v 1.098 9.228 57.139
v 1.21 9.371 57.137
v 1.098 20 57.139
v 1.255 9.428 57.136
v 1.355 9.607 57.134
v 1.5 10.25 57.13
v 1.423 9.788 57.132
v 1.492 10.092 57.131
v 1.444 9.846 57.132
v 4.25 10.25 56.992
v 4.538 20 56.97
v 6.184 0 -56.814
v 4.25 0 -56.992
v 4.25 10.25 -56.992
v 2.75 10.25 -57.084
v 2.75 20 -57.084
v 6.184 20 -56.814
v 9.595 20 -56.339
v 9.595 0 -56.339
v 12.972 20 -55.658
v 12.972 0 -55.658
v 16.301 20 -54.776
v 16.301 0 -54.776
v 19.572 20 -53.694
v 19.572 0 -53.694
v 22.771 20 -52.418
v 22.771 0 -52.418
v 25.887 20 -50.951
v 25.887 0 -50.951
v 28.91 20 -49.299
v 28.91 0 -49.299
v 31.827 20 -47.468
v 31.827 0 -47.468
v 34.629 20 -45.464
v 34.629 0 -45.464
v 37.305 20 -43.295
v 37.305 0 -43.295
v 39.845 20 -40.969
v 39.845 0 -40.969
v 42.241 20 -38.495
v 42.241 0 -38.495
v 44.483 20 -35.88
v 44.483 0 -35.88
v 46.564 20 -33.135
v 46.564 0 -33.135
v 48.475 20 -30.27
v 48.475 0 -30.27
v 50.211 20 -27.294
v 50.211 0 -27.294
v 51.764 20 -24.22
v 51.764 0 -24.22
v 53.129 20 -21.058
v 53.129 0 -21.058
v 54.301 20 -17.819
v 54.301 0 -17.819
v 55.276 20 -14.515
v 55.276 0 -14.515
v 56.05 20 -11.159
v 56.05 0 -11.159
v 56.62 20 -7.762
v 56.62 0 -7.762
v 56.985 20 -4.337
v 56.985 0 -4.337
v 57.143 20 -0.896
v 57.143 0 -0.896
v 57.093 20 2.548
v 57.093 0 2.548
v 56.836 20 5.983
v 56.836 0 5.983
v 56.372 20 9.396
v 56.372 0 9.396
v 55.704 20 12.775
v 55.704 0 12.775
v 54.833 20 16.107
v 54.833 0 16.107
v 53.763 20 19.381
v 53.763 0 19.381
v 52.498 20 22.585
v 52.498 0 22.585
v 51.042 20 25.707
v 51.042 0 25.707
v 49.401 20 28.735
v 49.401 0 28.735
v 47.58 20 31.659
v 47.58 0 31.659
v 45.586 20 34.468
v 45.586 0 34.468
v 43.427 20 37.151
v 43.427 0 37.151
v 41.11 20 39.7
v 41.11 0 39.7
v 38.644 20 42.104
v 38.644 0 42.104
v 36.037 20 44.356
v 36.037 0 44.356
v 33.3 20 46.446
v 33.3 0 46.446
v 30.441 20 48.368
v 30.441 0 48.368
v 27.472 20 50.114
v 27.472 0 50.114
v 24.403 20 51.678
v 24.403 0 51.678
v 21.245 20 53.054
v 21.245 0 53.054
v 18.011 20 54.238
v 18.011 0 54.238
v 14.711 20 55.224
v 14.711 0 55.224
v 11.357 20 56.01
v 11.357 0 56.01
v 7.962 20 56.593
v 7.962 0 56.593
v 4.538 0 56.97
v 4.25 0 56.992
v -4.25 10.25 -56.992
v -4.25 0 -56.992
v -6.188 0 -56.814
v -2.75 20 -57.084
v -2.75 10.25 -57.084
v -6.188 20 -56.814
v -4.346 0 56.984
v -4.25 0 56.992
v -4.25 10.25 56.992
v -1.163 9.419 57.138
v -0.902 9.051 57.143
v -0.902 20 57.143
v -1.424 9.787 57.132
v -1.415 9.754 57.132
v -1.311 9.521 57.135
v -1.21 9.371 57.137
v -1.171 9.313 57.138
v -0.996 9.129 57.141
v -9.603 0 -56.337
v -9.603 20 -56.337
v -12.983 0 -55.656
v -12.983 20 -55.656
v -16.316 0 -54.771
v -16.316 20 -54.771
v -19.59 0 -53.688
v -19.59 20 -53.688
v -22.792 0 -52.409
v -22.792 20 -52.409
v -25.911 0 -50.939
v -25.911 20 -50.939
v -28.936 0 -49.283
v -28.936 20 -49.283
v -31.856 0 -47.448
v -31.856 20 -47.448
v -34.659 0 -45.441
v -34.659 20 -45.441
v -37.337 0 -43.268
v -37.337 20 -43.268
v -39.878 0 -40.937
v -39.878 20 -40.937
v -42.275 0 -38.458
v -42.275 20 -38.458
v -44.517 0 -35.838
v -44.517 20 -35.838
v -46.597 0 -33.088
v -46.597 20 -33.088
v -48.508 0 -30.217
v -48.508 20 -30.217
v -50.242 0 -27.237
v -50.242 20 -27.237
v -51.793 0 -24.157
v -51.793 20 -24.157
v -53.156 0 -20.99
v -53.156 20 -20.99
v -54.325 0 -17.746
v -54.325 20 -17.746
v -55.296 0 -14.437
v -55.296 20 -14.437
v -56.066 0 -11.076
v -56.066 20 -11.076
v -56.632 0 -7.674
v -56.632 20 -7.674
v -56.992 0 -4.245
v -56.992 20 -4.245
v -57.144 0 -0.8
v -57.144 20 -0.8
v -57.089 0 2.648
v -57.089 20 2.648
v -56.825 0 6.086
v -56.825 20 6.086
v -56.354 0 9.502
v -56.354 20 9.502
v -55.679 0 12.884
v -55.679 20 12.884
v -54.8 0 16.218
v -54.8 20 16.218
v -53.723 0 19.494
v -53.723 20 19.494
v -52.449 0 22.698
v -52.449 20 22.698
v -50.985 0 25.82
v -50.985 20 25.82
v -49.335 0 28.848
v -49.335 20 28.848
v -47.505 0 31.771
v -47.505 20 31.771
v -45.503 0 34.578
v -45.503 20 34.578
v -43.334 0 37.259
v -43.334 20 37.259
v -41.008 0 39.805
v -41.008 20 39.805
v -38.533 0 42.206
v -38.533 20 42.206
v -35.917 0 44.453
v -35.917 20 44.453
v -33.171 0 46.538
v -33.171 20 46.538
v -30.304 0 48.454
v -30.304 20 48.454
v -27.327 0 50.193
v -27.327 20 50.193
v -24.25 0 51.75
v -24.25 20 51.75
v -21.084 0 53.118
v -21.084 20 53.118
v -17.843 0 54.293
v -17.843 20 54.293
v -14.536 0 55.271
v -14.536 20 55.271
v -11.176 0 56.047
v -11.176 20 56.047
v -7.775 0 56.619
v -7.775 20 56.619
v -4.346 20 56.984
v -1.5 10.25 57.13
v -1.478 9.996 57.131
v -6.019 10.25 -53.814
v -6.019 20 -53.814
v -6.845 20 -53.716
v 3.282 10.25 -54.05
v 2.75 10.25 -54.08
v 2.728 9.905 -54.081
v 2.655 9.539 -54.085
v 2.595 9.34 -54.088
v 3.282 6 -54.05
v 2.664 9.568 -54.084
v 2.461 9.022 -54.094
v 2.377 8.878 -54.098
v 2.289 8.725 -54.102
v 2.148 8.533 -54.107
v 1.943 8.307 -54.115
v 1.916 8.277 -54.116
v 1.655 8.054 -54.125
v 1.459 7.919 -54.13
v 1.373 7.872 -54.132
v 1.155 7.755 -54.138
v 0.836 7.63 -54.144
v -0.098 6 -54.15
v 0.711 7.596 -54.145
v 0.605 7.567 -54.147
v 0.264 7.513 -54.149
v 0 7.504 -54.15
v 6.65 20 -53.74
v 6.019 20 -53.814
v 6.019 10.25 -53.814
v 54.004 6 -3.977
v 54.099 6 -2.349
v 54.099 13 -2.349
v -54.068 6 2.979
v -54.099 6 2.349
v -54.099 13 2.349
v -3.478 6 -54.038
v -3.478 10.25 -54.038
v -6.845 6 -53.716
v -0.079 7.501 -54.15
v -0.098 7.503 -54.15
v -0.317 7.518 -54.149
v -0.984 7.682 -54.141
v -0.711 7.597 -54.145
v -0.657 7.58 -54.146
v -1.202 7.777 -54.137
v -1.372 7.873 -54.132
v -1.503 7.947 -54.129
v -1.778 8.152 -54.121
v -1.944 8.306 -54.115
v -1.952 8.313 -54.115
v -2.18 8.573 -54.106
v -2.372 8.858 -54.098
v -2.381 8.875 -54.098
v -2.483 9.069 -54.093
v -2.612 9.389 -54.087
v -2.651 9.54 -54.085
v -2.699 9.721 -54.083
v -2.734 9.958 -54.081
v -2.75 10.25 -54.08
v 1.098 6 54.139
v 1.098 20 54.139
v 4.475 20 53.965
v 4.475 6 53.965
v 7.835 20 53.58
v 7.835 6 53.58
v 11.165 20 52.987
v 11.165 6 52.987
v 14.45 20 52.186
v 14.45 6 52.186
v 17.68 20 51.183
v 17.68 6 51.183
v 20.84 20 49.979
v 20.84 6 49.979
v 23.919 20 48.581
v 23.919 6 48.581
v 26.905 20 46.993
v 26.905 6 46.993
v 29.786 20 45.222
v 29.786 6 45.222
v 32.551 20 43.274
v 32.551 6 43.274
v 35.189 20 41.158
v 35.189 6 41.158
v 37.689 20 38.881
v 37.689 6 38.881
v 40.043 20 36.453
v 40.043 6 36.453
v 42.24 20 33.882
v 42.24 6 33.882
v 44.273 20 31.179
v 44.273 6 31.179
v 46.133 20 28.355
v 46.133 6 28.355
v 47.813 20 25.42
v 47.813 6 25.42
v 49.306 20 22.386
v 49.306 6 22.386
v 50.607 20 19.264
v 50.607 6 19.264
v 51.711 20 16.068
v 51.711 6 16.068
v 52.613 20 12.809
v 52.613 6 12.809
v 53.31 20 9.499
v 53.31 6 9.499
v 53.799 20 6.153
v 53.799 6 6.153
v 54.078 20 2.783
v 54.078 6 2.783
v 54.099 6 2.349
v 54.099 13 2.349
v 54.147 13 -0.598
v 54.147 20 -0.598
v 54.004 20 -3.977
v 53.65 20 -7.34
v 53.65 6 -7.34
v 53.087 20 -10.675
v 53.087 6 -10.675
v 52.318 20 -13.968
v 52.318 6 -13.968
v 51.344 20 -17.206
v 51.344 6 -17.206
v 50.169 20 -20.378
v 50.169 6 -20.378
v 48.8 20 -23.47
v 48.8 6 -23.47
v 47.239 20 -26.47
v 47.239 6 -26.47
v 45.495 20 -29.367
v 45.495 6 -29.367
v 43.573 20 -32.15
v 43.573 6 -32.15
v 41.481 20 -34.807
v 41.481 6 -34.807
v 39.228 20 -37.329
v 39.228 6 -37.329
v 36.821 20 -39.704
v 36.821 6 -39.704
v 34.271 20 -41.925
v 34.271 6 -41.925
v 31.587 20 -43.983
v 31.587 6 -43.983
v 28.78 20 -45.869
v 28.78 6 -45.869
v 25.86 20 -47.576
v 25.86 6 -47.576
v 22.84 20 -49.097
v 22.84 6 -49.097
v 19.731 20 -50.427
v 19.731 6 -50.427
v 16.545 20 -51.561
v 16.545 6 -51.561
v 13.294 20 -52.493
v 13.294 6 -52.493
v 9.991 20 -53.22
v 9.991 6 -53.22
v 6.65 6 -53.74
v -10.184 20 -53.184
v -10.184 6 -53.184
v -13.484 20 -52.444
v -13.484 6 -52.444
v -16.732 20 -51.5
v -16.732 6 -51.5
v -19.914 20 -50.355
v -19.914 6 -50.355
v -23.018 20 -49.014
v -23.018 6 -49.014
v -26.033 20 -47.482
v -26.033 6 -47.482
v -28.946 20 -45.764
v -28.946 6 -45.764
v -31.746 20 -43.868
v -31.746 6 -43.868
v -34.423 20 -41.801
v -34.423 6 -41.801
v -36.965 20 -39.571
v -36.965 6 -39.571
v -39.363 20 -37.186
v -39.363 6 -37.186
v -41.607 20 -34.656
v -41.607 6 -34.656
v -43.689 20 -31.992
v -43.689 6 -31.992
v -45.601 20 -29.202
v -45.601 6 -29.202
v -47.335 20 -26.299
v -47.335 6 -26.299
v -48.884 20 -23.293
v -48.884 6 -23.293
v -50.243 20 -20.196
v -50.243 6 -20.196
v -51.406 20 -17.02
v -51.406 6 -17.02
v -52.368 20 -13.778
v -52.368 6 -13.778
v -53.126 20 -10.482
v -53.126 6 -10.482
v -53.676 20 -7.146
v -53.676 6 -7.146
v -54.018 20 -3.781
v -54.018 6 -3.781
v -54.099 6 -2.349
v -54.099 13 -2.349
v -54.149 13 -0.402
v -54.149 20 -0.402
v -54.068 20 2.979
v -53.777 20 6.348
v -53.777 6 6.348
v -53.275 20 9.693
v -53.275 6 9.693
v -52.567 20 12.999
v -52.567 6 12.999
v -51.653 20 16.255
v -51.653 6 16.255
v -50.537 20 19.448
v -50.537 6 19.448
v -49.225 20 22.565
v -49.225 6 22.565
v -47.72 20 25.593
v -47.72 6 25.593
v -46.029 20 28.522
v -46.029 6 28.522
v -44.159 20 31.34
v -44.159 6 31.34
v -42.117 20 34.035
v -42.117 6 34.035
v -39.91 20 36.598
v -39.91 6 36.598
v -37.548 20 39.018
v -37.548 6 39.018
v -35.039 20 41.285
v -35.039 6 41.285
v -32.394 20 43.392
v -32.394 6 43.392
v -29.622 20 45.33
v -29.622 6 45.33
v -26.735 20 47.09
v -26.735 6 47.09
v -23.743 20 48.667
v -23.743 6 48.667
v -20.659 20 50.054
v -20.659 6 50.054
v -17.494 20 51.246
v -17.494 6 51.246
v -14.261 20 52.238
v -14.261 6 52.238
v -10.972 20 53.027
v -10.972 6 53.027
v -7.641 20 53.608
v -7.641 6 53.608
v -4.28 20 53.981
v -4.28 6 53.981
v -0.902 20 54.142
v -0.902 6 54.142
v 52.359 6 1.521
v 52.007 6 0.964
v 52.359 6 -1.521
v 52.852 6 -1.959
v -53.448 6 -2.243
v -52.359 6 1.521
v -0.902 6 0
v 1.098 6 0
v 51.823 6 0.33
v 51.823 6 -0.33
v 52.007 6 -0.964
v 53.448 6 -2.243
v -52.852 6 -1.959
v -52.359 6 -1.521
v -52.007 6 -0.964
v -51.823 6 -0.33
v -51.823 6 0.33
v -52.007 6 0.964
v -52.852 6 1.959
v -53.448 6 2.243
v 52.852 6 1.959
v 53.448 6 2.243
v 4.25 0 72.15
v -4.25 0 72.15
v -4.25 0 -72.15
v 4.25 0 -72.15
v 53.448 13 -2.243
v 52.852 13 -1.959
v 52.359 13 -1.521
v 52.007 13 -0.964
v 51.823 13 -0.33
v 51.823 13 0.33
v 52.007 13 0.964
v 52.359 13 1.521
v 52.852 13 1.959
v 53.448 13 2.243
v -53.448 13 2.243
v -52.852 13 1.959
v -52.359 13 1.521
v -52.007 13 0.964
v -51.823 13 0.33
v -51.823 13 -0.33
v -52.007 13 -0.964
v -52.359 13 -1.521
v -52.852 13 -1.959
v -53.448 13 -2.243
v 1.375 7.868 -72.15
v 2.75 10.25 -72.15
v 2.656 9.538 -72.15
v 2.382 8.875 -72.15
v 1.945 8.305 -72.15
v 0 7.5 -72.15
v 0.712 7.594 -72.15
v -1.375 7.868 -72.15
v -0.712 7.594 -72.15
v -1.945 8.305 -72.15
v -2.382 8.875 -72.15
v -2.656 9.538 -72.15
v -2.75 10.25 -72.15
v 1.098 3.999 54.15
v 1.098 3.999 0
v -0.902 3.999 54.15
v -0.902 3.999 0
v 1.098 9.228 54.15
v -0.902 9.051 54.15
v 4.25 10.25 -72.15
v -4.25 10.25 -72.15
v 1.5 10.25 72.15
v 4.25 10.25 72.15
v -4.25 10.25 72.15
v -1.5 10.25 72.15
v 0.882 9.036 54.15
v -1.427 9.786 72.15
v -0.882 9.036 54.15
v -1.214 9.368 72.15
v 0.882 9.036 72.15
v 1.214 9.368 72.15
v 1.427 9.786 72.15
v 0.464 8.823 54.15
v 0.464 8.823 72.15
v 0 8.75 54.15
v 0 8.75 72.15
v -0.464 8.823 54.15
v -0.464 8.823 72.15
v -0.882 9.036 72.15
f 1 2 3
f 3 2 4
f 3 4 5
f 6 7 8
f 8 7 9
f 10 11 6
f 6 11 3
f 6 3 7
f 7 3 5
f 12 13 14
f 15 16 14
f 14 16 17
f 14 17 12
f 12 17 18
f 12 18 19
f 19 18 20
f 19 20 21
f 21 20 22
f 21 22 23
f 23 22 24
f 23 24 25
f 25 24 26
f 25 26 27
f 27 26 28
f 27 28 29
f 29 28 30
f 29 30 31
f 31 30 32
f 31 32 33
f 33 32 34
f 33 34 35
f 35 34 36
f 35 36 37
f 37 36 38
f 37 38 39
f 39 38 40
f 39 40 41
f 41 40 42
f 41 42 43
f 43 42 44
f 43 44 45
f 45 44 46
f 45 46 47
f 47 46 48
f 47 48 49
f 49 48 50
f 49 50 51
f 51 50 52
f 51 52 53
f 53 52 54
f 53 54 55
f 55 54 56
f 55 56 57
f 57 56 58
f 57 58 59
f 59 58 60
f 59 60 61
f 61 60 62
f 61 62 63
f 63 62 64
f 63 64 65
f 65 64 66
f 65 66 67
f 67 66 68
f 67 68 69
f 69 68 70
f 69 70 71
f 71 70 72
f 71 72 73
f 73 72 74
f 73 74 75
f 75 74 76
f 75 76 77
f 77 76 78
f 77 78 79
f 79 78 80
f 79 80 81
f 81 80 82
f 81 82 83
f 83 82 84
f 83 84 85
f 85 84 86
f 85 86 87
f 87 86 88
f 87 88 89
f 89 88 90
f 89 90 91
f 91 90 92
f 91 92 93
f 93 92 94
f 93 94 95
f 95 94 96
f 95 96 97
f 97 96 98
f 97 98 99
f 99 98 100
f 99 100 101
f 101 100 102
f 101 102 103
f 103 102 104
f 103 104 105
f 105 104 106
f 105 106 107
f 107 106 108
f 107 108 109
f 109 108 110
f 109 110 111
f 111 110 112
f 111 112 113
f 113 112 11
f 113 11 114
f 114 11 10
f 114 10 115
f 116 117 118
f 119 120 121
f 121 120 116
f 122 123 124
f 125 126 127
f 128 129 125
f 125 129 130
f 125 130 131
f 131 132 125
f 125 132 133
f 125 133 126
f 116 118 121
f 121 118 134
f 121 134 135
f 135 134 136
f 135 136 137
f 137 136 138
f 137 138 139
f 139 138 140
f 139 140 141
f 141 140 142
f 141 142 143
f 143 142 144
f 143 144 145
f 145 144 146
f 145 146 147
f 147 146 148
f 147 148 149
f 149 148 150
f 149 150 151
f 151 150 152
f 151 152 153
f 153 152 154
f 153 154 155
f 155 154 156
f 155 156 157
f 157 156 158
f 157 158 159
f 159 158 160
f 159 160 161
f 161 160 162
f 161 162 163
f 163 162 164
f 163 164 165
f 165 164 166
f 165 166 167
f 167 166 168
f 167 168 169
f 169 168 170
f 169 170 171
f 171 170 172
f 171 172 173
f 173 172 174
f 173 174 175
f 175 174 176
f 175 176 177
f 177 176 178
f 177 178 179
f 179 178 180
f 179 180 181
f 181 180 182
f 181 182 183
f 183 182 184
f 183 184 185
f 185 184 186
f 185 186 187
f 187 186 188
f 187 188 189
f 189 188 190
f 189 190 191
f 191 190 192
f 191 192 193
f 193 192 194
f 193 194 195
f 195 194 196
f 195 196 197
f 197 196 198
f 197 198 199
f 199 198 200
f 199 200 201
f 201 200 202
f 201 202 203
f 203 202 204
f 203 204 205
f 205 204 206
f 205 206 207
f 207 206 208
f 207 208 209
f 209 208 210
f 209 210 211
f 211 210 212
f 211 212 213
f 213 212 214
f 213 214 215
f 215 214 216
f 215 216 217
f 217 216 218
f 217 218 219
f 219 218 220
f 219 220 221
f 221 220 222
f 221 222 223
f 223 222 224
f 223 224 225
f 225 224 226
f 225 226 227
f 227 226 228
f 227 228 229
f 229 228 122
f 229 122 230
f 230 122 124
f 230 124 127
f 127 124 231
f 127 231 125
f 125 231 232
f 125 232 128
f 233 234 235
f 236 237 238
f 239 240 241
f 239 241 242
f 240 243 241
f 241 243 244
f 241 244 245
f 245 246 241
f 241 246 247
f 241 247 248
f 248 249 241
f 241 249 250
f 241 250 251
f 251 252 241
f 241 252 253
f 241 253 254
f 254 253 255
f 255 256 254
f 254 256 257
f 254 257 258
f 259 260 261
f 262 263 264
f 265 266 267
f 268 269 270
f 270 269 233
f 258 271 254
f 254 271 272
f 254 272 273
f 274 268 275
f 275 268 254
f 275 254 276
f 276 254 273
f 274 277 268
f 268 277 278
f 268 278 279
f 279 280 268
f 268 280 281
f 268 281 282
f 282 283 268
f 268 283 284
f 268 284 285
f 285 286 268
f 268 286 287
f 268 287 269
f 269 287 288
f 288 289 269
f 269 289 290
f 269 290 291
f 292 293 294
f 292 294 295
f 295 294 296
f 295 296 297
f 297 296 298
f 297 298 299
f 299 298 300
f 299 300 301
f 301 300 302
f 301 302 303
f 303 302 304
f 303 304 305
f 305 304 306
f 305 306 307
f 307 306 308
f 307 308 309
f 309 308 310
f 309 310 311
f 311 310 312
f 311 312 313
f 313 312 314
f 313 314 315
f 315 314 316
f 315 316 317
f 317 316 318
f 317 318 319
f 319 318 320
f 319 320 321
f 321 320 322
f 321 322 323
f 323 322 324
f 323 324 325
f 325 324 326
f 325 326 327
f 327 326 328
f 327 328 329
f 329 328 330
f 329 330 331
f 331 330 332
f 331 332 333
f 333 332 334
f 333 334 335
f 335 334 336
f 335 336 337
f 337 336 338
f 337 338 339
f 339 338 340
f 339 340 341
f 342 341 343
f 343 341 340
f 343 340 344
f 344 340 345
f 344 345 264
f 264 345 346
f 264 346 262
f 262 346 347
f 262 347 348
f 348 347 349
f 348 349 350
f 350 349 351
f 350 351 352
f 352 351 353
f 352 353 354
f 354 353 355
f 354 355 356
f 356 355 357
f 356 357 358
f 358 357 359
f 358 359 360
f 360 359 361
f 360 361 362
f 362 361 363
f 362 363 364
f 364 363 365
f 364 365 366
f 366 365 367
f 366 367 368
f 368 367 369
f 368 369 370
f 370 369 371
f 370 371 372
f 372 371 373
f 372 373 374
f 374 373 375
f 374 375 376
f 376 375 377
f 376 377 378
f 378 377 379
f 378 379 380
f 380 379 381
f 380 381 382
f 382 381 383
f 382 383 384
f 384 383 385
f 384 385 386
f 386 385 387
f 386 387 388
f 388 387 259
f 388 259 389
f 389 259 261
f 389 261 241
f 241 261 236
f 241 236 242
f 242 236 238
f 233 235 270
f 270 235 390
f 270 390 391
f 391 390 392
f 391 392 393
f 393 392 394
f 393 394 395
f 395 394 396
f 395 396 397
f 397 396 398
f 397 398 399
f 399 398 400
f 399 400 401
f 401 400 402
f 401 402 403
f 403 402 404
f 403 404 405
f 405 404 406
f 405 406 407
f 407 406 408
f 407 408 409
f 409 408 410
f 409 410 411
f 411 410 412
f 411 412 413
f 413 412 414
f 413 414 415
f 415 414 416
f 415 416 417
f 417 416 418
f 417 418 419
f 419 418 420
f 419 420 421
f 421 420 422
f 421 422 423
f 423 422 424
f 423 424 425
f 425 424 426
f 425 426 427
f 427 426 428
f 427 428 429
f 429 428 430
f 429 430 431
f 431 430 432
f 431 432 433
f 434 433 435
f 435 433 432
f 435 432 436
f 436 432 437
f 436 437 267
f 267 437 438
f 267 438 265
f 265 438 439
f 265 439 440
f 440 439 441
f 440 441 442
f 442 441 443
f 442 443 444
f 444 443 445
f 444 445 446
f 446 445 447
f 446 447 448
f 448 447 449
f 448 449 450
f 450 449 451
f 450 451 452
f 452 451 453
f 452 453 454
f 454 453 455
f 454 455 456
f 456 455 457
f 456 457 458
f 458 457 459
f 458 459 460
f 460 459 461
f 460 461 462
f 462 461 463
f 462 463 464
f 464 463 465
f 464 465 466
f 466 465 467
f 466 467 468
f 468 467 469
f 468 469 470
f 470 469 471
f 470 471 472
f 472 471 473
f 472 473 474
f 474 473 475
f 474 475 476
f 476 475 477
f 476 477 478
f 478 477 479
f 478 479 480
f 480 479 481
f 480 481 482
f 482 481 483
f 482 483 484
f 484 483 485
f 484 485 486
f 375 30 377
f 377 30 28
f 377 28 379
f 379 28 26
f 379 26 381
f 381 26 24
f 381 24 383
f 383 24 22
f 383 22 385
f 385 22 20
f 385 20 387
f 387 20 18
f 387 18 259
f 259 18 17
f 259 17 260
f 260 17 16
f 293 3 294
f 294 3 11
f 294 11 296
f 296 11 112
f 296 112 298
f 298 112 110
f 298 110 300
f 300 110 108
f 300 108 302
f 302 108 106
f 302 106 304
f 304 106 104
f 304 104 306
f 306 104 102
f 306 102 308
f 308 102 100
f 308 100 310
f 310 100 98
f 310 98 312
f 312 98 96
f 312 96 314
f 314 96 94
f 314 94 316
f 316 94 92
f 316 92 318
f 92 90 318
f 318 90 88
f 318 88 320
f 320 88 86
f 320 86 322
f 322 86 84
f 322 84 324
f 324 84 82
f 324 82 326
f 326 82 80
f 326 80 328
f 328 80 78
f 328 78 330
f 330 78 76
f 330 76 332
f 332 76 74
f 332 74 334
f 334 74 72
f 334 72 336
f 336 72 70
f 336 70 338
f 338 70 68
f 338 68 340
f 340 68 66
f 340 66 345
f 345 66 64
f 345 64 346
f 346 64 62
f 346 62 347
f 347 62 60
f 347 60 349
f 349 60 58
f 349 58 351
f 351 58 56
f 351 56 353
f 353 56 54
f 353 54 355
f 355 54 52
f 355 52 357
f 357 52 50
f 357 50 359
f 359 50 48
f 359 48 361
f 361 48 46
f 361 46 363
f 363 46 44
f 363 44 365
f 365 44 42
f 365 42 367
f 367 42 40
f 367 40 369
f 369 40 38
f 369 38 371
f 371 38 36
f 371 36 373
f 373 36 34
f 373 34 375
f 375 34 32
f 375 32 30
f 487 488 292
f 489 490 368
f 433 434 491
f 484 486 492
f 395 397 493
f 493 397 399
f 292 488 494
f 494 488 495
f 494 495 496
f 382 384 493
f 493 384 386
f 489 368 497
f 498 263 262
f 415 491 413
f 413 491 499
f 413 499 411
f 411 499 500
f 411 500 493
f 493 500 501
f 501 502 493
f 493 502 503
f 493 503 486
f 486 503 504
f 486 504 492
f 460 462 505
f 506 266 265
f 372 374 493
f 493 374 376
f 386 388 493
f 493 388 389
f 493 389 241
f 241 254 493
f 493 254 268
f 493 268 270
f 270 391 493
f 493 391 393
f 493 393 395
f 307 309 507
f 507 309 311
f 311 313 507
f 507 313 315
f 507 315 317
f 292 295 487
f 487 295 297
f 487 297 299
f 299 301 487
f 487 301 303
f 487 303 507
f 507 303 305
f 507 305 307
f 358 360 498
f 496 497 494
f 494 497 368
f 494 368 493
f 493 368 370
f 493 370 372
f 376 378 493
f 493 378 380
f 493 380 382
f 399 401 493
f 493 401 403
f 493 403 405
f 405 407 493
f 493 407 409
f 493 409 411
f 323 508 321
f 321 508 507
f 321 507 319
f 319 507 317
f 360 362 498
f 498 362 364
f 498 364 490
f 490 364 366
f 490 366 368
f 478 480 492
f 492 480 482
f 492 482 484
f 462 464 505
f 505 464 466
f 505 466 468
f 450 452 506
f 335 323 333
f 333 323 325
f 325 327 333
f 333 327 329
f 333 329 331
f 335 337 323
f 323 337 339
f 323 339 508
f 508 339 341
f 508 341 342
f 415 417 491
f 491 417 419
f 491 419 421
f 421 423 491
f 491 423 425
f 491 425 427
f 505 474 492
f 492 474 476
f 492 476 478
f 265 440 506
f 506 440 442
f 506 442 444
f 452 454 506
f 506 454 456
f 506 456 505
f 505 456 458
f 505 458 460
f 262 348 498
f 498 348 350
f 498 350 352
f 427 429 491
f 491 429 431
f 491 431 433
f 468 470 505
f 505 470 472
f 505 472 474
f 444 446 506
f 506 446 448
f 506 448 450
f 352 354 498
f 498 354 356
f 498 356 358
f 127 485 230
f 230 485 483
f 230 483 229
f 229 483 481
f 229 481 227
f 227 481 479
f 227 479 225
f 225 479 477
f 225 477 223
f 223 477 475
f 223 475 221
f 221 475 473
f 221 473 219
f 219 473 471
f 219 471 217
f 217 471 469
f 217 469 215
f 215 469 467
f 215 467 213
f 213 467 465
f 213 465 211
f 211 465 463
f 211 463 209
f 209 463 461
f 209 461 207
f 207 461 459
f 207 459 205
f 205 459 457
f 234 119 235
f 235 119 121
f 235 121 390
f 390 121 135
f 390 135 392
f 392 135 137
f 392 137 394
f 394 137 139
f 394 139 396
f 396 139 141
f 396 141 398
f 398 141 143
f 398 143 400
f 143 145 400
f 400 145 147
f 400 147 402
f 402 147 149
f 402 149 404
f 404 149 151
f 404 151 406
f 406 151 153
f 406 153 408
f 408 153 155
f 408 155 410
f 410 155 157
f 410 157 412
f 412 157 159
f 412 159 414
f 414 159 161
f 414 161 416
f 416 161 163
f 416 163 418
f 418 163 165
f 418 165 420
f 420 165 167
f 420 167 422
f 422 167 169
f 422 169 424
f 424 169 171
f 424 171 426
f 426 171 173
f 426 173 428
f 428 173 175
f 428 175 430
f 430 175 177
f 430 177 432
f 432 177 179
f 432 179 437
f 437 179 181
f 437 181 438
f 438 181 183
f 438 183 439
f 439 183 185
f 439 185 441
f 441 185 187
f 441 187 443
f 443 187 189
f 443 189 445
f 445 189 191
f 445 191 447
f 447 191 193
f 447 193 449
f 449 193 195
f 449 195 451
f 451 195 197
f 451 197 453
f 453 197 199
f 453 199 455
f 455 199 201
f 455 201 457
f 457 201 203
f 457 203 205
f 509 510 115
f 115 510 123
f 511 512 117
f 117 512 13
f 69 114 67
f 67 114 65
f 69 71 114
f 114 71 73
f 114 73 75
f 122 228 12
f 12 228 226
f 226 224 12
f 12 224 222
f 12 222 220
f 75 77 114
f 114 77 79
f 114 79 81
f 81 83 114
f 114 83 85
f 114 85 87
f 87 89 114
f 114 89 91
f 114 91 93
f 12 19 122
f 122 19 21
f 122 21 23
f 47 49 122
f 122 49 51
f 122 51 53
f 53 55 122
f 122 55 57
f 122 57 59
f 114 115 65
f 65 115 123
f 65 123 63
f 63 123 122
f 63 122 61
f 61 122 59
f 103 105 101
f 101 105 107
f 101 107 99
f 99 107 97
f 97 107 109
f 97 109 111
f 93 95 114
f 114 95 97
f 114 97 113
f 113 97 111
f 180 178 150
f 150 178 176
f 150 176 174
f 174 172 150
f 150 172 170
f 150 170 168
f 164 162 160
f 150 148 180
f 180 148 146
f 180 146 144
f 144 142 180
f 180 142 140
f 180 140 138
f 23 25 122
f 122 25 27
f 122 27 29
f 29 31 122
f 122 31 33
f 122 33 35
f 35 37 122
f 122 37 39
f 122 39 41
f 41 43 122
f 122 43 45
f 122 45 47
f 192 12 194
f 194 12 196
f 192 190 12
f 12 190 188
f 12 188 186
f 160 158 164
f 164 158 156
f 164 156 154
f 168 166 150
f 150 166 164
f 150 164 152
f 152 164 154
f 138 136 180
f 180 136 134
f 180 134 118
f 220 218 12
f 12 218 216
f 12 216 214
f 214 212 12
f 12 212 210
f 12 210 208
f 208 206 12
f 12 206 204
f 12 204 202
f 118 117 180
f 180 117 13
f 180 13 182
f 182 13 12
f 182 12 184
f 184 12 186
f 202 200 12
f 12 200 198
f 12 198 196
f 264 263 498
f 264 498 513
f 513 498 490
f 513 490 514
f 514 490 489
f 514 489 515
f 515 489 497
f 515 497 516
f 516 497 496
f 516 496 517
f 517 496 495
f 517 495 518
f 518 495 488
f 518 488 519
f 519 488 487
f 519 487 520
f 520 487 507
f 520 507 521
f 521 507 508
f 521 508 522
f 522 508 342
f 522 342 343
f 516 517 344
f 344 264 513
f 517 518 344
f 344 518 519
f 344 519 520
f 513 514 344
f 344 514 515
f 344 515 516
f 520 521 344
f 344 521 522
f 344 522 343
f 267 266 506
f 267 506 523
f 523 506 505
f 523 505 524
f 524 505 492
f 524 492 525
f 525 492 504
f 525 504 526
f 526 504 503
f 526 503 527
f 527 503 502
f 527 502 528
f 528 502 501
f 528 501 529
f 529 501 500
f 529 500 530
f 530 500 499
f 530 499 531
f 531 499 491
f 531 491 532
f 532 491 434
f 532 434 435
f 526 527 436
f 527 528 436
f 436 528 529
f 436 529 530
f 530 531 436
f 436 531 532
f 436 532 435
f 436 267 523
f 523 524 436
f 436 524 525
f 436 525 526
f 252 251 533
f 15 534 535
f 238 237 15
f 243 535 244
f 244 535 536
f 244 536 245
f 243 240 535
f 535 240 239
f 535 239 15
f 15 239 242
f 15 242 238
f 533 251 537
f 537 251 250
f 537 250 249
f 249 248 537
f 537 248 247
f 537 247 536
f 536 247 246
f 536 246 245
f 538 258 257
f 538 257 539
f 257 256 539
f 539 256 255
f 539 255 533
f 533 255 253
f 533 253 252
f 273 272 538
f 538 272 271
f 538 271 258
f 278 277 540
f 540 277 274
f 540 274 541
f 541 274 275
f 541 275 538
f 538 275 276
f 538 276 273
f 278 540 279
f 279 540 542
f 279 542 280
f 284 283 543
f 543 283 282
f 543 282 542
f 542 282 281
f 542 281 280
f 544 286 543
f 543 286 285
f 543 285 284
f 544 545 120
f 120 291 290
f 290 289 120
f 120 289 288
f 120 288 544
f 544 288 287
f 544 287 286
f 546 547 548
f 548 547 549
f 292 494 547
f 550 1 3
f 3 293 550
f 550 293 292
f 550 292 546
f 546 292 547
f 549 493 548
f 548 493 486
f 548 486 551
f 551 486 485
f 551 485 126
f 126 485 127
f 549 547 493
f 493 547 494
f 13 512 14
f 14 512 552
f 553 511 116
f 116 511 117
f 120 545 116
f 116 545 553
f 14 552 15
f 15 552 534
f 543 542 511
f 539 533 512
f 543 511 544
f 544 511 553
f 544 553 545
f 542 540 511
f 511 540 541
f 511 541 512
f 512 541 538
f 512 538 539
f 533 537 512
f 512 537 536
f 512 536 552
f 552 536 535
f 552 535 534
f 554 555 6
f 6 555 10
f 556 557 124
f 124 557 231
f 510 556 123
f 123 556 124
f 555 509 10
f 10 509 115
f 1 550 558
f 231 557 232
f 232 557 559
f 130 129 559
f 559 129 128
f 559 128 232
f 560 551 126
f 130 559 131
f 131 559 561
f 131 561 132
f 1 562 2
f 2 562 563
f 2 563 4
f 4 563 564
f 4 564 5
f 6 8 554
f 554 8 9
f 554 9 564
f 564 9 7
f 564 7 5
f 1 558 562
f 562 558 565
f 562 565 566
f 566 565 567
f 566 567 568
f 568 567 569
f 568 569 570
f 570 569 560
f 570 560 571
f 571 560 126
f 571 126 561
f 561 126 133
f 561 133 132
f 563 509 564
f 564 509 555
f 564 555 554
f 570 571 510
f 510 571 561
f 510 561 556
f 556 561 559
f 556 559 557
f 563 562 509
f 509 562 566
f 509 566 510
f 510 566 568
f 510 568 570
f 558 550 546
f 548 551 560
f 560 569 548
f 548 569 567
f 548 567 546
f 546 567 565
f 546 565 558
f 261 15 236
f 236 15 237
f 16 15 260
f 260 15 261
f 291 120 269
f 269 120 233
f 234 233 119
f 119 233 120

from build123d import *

# Parameters (mm, degrees)
SKETCH1_R           = 57.15
BOSS_EXTRUDE1_DEPTH = 20
SKETCH2_R           = 54.15
CUT_EXTRUDE1_DEPTH  = 14
BOSS_EXTRUDE2_DEPTH = 7
CUT_EXTRUDE2_DEPTH  = 84.260104492
SKETCH5_W           = 2
SKETCH5_H           = 16.000963959
CUT_EXTRUDE3_DEPTH  = 84.260104655
BOSS_EXTRUDE3_DEPTH = 18
BOSS_EXTRUDE4_DEPTH = 18
CUT_EXTRUDE4_DEPTH  = 9.75


with BuildPart() as part:
    # Sketch1 → Boss-Extrude1 (new body)
    with BuildSketch(Plane(origin=(0, 0, 0), x_dir=(1, 0, 0), z_dir=(0, 1, 0))):
        with Locations(Location((0, 0, 0), (0, 0, 270))):
            Circle(SKETCH1_R)
    extrude(amount=BOSS_EXTRUDE1_DEPTH)

    # Sketch2 → Cut-Extrude1 (cut)
    with BuildSketch(Plane(origin=(0, 20, 0), x_dir=(1, 0, 0), z_dir=(0, 1, 0))):
        with Locations(Location((0, 0, 0), (0, 0, 270))):
            Circle(SKETCH2_R)
    extrude(amount=-CUT_EXTRUDE1_DEPTH, mode=Mode.SUBTRACT)

    # Sketch3 → Boss-Extrude2 (add)
    with BuildSketch(Plane(origin=(0, 6, 0), x_dir=(1, 0, 0), z_dir=(0, 1, 0))):
        with BuildLine():
            ThreePointArc((-54.099007387, -2.349446691), (-51.8, 0), (-54.099007387, 2.349446691))
            ThreePointArc((-54.099007387, 2.349446691), (-54.15, 0), (-54.099007387, -2.349446691))
        make_face()
        with BuildLine():
            ThreePointArc((54.099007387, 2.349446691), (51.8, 0), (54.099007387, -2.349446691))
            ThreePointArc((54.099007387, -2.349446691), (54.15, 0), (54.099007387, 2.349446691))
        make_face()
    extrude(amount=BOSS_EXTRUDE2_DEPTH)

    # Sketch4 → Cut-Extrude2 (cut, through all)
    with BuildSketch(Plane.XY):
        with BuildLine():
            Line((2.75, 10.25), (2.75, 20))
            Line((2.75, 20), (-2.75, 20))
            Line((-2.75, 20), (-2.75, 10.25))
            ThreePointArc((-2.75, 10.25), (0, 7.5), (2.75, 10.25))
        make_face()
    extrude(amount=-CUT_EXTRUDE2_DEPTH, mode=Mode.SUBTRACT)

    # Sketch5 → Cut-Extrude3 (cut, through all)
    with BuildSketch(Plane.XY):
        with Locations((0.098176677, 11.999518021)):
            Rectangle(SKETCH5_W, SKETCH5_H)
    extrude(amount=CUT_EXTRUDE3_DEPTH, mode=Mode.SUBTRACT)

    # Sketch6 → Boss-Extrude3 (add)
    with BuildSketch(Plane.XY.offset(-54.15)):
        with BuildLine():
            Line((-4.25, 0), (4.25, 0))
            Line((4.25, 0), (4.25, 10.25))
            Line((4.25, 10.25), (2.75, 10.25))
            ThreePointArc((2.75, 10.25), (0, 7.5), (-2.75, 10.25))
            Line((-2.75, 10.25), (-4.25, 10.25))
            Line((-4.25, 10.25), (-4.25, 0))
        make_face()
    extrude(amount=-BOSS_EXTRUDE3_DEPTH)

    # Sketch7 → Boss-Extrude4 (add)
    with BuildSketch(Plane(origin=(0, 0, 54.15), x_dir=(-1, 0, 0), z_dir=(0, 0, -1))):
        with BuildLine():
            Line((4.25, 10.25), (1.5, 10.25))
            ThreePointArc((1.5, 10.25), (0, 8.75), (-1.5, 10.25))
            Line((-1.5, 10.25), (-4.25, 10.25))
            Line((-4.25, 10.25), (-4.25, 0))
            Line((-4.25, 0), (4.25, 0))
            Line((4.25, 0), (4.25, 10.25))
        make_face()
    extrude(amount=-BOSS_EXTRUDE4_DEPTH)

    # Sketch8 → Cut-Extrude4 (cut)
    with BuildSketch(Plane(origin=(0, 20, 0), x_dir=(1, 0, 0), z_dir=(0, 1, 0))):
        with BuildLine():
            Line((2.75, 54.080125739), (2.75, 57.083798052))
            Line((2.75, 57.083798052), (6.019401193, 53.814396859))
            ThreePointArc((6.019401193, 53.814396859), (4.386713152, 53.972022824), (2.75, 54.080125739))
        make_face()
        with BuildLine():
            Line((-2.75, 54.080125739), (-2.75, 57.083798052))
            Line((-2.75, 57.083798052), (-6.019401193, 53.814396859))
            ThreePointArc((-6.019401193, 53.814396859), (-4.386713152, 53.972022824), (-2.75, 54.080125739))
        make_face()
    extrude(amount=-CUT_EXTRUDE4_DEPTH, mode=Mode.SUBTRACT)


solid = part.part
